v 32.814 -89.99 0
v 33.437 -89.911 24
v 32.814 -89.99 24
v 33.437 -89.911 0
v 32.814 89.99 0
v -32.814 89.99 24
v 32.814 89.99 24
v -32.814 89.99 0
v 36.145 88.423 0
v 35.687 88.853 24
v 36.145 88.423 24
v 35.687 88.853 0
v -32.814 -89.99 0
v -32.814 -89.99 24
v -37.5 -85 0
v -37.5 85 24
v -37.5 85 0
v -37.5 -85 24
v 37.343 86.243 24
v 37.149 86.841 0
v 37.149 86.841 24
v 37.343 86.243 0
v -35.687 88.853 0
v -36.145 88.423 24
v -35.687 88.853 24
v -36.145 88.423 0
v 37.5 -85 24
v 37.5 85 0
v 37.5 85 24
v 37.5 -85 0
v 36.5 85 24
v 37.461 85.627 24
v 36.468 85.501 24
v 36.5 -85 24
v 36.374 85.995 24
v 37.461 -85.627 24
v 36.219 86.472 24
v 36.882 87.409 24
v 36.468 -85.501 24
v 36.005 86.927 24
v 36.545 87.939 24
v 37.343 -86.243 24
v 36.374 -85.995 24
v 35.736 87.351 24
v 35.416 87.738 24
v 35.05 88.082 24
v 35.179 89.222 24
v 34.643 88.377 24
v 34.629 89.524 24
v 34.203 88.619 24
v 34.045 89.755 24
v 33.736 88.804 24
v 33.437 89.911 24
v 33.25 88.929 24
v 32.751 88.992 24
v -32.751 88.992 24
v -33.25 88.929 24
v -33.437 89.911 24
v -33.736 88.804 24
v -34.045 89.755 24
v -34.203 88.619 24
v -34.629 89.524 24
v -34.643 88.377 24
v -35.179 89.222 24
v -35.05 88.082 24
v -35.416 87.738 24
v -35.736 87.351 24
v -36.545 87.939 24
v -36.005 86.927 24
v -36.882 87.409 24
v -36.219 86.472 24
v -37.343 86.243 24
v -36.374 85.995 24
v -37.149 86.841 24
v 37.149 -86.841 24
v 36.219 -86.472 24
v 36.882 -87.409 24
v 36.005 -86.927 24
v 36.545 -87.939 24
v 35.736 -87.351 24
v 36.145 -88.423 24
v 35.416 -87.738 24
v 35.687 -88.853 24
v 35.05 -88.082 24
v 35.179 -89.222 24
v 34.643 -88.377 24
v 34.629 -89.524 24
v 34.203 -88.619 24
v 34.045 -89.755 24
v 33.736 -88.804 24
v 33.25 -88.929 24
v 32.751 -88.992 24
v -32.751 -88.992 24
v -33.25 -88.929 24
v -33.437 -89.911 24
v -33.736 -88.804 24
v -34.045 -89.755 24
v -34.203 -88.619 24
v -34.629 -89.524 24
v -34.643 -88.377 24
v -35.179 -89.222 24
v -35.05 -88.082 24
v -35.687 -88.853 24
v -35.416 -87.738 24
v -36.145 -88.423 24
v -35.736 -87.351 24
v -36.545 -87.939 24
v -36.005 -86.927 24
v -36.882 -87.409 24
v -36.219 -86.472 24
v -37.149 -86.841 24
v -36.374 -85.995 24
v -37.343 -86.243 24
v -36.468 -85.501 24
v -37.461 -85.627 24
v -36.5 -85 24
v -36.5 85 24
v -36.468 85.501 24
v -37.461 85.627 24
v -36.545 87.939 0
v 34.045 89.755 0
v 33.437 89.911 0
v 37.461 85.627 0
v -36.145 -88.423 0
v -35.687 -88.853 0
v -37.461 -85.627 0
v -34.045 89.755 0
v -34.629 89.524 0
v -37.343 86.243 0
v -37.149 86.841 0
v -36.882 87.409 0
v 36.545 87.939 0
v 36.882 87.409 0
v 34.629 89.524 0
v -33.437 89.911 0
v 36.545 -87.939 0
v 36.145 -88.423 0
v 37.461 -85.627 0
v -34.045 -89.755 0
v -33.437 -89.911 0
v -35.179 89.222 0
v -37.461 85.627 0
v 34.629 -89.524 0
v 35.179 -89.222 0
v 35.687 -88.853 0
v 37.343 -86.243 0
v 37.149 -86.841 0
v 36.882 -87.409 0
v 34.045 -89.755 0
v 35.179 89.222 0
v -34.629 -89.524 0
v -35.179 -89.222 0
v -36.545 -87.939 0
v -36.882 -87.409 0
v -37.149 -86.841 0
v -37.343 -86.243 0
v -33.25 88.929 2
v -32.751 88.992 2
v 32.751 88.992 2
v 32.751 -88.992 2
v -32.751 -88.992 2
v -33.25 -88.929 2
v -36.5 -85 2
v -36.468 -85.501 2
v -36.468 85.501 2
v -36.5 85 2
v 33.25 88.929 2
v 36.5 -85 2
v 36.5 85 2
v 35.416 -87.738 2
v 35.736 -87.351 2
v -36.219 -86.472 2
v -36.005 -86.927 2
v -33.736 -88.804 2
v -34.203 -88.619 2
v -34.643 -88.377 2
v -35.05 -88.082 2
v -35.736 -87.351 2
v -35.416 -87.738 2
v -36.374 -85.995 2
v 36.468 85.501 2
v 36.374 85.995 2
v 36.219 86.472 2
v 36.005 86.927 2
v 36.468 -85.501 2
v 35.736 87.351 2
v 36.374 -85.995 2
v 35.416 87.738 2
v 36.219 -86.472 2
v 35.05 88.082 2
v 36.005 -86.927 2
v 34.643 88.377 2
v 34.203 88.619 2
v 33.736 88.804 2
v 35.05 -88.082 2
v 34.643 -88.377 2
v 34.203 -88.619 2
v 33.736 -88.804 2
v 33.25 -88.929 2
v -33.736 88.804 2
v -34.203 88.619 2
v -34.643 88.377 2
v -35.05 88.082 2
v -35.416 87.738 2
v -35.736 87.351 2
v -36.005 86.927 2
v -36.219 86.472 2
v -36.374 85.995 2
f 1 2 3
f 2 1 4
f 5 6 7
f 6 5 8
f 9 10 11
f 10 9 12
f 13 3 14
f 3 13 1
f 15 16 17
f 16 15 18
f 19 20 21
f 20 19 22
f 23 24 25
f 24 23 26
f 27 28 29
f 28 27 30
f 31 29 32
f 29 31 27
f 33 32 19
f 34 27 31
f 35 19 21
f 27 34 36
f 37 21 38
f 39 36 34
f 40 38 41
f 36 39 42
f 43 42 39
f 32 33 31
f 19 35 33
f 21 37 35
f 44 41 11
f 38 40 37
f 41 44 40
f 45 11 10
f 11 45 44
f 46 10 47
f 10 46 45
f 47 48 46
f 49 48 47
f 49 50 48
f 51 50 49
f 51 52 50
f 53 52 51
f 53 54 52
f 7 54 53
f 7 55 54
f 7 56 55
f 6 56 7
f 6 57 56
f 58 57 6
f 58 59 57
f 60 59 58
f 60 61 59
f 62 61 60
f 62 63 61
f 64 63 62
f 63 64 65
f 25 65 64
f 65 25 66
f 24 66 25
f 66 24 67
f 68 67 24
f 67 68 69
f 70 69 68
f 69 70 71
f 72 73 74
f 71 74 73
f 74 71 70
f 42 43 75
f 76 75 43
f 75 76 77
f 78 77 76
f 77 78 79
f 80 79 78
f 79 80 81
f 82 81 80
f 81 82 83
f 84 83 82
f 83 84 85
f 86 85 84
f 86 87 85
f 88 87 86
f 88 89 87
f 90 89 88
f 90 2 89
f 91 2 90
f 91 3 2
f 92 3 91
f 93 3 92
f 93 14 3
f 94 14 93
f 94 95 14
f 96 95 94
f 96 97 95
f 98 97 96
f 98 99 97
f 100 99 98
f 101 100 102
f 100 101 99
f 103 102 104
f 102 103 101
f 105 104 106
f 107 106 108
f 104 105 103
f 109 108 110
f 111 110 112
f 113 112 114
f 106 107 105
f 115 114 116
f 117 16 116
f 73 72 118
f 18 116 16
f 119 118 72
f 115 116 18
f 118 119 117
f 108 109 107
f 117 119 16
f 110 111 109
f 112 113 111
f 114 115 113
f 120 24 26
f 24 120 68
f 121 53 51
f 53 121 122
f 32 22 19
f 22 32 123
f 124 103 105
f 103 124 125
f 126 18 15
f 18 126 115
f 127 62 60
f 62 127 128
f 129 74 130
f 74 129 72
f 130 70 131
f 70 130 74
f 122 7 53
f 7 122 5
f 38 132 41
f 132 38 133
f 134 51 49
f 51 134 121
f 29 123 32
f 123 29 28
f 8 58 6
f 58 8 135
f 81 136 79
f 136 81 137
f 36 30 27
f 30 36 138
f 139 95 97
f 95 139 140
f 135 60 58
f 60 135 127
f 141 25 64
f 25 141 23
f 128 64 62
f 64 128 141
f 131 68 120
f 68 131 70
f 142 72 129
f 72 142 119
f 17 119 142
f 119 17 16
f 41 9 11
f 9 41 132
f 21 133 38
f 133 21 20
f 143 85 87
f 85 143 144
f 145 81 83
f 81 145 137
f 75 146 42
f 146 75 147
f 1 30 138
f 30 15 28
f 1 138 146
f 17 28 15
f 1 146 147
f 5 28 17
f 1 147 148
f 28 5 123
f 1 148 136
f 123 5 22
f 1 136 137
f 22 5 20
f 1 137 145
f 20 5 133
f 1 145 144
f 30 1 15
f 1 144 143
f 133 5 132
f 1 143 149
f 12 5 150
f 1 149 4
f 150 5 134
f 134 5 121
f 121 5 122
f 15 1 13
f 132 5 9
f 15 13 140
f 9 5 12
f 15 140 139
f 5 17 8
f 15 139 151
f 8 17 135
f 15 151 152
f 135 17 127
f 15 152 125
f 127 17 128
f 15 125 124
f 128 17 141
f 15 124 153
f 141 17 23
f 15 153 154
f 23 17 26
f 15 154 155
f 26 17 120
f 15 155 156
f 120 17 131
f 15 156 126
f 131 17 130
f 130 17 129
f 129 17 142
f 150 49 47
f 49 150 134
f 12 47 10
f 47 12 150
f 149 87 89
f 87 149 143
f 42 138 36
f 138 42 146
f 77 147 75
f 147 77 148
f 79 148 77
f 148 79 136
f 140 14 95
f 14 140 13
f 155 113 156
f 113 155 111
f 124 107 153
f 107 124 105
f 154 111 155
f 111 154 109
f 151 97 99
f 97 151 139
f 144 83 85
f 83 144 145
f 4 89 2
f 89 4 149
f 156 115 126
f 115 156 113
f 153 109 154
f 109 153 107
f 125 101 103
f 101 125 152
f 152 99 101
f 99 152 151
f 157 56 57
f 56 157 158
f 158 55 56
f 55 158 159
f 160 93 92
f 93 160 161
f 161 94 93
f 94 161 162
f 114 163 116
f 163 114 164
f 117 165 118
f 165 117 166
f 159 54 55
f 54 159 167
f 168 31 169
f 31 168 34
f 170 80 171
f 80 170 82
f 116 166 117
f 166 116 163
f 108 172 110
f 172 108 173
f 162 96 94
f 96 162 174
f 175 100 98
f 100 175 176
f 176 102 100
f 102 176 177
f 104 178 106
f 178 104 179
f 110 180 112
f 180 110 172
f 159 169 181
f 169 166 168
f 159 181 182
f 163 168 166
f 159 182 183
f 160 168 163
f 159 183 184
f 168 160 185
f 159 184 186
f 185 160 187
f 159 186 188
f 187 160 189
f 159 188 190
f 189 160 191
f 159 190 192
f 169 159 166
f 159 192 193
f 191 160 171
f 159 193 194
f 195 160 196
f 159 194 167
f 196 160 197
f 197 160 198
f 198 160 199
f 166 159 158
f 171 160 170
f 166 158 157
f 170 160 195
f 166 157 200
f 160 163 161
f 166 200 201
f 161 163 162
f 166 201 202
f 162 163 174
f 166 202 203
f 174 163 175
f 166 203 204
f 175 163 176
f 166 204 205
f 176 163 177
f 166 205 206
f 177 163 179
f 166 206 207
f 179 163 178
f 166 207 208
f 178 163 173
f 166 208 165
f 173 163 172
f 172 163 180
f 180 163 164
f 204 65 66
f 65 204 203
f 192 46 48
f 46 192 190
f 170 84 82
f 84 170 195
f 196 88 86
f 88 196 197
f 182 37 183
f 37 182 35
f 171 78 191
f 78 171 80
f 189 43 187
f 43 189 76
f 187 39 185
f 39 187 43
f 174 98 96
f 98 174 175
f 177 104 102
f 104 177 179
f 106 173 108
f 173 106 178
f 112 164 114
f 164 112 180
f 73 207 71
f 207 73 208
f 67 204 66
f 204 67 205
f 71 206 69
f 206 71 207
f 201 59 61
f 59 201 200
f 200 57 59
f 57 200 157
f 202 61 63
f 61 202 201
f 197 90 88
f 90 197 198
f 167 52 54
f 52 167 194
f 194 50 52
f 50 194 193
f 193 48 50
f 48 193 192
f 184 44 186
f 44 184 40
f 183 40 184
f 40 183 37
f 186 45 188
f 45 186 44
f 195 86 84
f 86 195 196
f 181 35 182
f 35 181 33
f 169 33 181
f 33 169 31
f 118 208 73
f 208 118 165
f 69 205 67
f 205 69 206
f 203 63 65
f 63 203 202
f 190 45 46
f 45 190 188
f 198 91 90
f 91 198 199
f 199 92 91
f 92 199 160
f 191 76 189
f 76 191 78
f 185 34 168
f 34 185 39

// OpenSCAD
$fn = 50;


difference() {
	union() {
		hull() {
			translate(v = [-32.5000000000, 85.0000000000, 0]) {
				cylinder(h = 24, r = 5);
			}
			translate(v = [32.5000000000, 85.0000000000, 0]) {
				cylinder(h = 24, r = 5);
			}
			translate(v = [-32.5000000000, -85.0000000000, 0]) {
				cylinder(h = 24, r = 5);
			}
			translate(v = [32.5000000000, -85.0000000000, 0]) {
				cylinder(h = 24, r = 5);
			}
		}
	}
	union() {
		translate(v = [0, 0, 2]) {
			hull() {
				translate(v = [-32.5000000000, 85.0000000000, 0]) {
					cylinder(h = 22, r = 4);
				}
				translate(v = [32.5000000000, 85.0000000000, 0]) {
					cylinder(h = 22, r = 4);
				}
				translate(v = [-32.5000000000, -85.0000000000, 0]) {
					cylinder(h = 22, r = 4);
				}
				translate(v = [32.5000000000, -85.0000000000, 0]) {
					cylinder(h = 22, r = 4);
				}
			}
		}
	}
}
